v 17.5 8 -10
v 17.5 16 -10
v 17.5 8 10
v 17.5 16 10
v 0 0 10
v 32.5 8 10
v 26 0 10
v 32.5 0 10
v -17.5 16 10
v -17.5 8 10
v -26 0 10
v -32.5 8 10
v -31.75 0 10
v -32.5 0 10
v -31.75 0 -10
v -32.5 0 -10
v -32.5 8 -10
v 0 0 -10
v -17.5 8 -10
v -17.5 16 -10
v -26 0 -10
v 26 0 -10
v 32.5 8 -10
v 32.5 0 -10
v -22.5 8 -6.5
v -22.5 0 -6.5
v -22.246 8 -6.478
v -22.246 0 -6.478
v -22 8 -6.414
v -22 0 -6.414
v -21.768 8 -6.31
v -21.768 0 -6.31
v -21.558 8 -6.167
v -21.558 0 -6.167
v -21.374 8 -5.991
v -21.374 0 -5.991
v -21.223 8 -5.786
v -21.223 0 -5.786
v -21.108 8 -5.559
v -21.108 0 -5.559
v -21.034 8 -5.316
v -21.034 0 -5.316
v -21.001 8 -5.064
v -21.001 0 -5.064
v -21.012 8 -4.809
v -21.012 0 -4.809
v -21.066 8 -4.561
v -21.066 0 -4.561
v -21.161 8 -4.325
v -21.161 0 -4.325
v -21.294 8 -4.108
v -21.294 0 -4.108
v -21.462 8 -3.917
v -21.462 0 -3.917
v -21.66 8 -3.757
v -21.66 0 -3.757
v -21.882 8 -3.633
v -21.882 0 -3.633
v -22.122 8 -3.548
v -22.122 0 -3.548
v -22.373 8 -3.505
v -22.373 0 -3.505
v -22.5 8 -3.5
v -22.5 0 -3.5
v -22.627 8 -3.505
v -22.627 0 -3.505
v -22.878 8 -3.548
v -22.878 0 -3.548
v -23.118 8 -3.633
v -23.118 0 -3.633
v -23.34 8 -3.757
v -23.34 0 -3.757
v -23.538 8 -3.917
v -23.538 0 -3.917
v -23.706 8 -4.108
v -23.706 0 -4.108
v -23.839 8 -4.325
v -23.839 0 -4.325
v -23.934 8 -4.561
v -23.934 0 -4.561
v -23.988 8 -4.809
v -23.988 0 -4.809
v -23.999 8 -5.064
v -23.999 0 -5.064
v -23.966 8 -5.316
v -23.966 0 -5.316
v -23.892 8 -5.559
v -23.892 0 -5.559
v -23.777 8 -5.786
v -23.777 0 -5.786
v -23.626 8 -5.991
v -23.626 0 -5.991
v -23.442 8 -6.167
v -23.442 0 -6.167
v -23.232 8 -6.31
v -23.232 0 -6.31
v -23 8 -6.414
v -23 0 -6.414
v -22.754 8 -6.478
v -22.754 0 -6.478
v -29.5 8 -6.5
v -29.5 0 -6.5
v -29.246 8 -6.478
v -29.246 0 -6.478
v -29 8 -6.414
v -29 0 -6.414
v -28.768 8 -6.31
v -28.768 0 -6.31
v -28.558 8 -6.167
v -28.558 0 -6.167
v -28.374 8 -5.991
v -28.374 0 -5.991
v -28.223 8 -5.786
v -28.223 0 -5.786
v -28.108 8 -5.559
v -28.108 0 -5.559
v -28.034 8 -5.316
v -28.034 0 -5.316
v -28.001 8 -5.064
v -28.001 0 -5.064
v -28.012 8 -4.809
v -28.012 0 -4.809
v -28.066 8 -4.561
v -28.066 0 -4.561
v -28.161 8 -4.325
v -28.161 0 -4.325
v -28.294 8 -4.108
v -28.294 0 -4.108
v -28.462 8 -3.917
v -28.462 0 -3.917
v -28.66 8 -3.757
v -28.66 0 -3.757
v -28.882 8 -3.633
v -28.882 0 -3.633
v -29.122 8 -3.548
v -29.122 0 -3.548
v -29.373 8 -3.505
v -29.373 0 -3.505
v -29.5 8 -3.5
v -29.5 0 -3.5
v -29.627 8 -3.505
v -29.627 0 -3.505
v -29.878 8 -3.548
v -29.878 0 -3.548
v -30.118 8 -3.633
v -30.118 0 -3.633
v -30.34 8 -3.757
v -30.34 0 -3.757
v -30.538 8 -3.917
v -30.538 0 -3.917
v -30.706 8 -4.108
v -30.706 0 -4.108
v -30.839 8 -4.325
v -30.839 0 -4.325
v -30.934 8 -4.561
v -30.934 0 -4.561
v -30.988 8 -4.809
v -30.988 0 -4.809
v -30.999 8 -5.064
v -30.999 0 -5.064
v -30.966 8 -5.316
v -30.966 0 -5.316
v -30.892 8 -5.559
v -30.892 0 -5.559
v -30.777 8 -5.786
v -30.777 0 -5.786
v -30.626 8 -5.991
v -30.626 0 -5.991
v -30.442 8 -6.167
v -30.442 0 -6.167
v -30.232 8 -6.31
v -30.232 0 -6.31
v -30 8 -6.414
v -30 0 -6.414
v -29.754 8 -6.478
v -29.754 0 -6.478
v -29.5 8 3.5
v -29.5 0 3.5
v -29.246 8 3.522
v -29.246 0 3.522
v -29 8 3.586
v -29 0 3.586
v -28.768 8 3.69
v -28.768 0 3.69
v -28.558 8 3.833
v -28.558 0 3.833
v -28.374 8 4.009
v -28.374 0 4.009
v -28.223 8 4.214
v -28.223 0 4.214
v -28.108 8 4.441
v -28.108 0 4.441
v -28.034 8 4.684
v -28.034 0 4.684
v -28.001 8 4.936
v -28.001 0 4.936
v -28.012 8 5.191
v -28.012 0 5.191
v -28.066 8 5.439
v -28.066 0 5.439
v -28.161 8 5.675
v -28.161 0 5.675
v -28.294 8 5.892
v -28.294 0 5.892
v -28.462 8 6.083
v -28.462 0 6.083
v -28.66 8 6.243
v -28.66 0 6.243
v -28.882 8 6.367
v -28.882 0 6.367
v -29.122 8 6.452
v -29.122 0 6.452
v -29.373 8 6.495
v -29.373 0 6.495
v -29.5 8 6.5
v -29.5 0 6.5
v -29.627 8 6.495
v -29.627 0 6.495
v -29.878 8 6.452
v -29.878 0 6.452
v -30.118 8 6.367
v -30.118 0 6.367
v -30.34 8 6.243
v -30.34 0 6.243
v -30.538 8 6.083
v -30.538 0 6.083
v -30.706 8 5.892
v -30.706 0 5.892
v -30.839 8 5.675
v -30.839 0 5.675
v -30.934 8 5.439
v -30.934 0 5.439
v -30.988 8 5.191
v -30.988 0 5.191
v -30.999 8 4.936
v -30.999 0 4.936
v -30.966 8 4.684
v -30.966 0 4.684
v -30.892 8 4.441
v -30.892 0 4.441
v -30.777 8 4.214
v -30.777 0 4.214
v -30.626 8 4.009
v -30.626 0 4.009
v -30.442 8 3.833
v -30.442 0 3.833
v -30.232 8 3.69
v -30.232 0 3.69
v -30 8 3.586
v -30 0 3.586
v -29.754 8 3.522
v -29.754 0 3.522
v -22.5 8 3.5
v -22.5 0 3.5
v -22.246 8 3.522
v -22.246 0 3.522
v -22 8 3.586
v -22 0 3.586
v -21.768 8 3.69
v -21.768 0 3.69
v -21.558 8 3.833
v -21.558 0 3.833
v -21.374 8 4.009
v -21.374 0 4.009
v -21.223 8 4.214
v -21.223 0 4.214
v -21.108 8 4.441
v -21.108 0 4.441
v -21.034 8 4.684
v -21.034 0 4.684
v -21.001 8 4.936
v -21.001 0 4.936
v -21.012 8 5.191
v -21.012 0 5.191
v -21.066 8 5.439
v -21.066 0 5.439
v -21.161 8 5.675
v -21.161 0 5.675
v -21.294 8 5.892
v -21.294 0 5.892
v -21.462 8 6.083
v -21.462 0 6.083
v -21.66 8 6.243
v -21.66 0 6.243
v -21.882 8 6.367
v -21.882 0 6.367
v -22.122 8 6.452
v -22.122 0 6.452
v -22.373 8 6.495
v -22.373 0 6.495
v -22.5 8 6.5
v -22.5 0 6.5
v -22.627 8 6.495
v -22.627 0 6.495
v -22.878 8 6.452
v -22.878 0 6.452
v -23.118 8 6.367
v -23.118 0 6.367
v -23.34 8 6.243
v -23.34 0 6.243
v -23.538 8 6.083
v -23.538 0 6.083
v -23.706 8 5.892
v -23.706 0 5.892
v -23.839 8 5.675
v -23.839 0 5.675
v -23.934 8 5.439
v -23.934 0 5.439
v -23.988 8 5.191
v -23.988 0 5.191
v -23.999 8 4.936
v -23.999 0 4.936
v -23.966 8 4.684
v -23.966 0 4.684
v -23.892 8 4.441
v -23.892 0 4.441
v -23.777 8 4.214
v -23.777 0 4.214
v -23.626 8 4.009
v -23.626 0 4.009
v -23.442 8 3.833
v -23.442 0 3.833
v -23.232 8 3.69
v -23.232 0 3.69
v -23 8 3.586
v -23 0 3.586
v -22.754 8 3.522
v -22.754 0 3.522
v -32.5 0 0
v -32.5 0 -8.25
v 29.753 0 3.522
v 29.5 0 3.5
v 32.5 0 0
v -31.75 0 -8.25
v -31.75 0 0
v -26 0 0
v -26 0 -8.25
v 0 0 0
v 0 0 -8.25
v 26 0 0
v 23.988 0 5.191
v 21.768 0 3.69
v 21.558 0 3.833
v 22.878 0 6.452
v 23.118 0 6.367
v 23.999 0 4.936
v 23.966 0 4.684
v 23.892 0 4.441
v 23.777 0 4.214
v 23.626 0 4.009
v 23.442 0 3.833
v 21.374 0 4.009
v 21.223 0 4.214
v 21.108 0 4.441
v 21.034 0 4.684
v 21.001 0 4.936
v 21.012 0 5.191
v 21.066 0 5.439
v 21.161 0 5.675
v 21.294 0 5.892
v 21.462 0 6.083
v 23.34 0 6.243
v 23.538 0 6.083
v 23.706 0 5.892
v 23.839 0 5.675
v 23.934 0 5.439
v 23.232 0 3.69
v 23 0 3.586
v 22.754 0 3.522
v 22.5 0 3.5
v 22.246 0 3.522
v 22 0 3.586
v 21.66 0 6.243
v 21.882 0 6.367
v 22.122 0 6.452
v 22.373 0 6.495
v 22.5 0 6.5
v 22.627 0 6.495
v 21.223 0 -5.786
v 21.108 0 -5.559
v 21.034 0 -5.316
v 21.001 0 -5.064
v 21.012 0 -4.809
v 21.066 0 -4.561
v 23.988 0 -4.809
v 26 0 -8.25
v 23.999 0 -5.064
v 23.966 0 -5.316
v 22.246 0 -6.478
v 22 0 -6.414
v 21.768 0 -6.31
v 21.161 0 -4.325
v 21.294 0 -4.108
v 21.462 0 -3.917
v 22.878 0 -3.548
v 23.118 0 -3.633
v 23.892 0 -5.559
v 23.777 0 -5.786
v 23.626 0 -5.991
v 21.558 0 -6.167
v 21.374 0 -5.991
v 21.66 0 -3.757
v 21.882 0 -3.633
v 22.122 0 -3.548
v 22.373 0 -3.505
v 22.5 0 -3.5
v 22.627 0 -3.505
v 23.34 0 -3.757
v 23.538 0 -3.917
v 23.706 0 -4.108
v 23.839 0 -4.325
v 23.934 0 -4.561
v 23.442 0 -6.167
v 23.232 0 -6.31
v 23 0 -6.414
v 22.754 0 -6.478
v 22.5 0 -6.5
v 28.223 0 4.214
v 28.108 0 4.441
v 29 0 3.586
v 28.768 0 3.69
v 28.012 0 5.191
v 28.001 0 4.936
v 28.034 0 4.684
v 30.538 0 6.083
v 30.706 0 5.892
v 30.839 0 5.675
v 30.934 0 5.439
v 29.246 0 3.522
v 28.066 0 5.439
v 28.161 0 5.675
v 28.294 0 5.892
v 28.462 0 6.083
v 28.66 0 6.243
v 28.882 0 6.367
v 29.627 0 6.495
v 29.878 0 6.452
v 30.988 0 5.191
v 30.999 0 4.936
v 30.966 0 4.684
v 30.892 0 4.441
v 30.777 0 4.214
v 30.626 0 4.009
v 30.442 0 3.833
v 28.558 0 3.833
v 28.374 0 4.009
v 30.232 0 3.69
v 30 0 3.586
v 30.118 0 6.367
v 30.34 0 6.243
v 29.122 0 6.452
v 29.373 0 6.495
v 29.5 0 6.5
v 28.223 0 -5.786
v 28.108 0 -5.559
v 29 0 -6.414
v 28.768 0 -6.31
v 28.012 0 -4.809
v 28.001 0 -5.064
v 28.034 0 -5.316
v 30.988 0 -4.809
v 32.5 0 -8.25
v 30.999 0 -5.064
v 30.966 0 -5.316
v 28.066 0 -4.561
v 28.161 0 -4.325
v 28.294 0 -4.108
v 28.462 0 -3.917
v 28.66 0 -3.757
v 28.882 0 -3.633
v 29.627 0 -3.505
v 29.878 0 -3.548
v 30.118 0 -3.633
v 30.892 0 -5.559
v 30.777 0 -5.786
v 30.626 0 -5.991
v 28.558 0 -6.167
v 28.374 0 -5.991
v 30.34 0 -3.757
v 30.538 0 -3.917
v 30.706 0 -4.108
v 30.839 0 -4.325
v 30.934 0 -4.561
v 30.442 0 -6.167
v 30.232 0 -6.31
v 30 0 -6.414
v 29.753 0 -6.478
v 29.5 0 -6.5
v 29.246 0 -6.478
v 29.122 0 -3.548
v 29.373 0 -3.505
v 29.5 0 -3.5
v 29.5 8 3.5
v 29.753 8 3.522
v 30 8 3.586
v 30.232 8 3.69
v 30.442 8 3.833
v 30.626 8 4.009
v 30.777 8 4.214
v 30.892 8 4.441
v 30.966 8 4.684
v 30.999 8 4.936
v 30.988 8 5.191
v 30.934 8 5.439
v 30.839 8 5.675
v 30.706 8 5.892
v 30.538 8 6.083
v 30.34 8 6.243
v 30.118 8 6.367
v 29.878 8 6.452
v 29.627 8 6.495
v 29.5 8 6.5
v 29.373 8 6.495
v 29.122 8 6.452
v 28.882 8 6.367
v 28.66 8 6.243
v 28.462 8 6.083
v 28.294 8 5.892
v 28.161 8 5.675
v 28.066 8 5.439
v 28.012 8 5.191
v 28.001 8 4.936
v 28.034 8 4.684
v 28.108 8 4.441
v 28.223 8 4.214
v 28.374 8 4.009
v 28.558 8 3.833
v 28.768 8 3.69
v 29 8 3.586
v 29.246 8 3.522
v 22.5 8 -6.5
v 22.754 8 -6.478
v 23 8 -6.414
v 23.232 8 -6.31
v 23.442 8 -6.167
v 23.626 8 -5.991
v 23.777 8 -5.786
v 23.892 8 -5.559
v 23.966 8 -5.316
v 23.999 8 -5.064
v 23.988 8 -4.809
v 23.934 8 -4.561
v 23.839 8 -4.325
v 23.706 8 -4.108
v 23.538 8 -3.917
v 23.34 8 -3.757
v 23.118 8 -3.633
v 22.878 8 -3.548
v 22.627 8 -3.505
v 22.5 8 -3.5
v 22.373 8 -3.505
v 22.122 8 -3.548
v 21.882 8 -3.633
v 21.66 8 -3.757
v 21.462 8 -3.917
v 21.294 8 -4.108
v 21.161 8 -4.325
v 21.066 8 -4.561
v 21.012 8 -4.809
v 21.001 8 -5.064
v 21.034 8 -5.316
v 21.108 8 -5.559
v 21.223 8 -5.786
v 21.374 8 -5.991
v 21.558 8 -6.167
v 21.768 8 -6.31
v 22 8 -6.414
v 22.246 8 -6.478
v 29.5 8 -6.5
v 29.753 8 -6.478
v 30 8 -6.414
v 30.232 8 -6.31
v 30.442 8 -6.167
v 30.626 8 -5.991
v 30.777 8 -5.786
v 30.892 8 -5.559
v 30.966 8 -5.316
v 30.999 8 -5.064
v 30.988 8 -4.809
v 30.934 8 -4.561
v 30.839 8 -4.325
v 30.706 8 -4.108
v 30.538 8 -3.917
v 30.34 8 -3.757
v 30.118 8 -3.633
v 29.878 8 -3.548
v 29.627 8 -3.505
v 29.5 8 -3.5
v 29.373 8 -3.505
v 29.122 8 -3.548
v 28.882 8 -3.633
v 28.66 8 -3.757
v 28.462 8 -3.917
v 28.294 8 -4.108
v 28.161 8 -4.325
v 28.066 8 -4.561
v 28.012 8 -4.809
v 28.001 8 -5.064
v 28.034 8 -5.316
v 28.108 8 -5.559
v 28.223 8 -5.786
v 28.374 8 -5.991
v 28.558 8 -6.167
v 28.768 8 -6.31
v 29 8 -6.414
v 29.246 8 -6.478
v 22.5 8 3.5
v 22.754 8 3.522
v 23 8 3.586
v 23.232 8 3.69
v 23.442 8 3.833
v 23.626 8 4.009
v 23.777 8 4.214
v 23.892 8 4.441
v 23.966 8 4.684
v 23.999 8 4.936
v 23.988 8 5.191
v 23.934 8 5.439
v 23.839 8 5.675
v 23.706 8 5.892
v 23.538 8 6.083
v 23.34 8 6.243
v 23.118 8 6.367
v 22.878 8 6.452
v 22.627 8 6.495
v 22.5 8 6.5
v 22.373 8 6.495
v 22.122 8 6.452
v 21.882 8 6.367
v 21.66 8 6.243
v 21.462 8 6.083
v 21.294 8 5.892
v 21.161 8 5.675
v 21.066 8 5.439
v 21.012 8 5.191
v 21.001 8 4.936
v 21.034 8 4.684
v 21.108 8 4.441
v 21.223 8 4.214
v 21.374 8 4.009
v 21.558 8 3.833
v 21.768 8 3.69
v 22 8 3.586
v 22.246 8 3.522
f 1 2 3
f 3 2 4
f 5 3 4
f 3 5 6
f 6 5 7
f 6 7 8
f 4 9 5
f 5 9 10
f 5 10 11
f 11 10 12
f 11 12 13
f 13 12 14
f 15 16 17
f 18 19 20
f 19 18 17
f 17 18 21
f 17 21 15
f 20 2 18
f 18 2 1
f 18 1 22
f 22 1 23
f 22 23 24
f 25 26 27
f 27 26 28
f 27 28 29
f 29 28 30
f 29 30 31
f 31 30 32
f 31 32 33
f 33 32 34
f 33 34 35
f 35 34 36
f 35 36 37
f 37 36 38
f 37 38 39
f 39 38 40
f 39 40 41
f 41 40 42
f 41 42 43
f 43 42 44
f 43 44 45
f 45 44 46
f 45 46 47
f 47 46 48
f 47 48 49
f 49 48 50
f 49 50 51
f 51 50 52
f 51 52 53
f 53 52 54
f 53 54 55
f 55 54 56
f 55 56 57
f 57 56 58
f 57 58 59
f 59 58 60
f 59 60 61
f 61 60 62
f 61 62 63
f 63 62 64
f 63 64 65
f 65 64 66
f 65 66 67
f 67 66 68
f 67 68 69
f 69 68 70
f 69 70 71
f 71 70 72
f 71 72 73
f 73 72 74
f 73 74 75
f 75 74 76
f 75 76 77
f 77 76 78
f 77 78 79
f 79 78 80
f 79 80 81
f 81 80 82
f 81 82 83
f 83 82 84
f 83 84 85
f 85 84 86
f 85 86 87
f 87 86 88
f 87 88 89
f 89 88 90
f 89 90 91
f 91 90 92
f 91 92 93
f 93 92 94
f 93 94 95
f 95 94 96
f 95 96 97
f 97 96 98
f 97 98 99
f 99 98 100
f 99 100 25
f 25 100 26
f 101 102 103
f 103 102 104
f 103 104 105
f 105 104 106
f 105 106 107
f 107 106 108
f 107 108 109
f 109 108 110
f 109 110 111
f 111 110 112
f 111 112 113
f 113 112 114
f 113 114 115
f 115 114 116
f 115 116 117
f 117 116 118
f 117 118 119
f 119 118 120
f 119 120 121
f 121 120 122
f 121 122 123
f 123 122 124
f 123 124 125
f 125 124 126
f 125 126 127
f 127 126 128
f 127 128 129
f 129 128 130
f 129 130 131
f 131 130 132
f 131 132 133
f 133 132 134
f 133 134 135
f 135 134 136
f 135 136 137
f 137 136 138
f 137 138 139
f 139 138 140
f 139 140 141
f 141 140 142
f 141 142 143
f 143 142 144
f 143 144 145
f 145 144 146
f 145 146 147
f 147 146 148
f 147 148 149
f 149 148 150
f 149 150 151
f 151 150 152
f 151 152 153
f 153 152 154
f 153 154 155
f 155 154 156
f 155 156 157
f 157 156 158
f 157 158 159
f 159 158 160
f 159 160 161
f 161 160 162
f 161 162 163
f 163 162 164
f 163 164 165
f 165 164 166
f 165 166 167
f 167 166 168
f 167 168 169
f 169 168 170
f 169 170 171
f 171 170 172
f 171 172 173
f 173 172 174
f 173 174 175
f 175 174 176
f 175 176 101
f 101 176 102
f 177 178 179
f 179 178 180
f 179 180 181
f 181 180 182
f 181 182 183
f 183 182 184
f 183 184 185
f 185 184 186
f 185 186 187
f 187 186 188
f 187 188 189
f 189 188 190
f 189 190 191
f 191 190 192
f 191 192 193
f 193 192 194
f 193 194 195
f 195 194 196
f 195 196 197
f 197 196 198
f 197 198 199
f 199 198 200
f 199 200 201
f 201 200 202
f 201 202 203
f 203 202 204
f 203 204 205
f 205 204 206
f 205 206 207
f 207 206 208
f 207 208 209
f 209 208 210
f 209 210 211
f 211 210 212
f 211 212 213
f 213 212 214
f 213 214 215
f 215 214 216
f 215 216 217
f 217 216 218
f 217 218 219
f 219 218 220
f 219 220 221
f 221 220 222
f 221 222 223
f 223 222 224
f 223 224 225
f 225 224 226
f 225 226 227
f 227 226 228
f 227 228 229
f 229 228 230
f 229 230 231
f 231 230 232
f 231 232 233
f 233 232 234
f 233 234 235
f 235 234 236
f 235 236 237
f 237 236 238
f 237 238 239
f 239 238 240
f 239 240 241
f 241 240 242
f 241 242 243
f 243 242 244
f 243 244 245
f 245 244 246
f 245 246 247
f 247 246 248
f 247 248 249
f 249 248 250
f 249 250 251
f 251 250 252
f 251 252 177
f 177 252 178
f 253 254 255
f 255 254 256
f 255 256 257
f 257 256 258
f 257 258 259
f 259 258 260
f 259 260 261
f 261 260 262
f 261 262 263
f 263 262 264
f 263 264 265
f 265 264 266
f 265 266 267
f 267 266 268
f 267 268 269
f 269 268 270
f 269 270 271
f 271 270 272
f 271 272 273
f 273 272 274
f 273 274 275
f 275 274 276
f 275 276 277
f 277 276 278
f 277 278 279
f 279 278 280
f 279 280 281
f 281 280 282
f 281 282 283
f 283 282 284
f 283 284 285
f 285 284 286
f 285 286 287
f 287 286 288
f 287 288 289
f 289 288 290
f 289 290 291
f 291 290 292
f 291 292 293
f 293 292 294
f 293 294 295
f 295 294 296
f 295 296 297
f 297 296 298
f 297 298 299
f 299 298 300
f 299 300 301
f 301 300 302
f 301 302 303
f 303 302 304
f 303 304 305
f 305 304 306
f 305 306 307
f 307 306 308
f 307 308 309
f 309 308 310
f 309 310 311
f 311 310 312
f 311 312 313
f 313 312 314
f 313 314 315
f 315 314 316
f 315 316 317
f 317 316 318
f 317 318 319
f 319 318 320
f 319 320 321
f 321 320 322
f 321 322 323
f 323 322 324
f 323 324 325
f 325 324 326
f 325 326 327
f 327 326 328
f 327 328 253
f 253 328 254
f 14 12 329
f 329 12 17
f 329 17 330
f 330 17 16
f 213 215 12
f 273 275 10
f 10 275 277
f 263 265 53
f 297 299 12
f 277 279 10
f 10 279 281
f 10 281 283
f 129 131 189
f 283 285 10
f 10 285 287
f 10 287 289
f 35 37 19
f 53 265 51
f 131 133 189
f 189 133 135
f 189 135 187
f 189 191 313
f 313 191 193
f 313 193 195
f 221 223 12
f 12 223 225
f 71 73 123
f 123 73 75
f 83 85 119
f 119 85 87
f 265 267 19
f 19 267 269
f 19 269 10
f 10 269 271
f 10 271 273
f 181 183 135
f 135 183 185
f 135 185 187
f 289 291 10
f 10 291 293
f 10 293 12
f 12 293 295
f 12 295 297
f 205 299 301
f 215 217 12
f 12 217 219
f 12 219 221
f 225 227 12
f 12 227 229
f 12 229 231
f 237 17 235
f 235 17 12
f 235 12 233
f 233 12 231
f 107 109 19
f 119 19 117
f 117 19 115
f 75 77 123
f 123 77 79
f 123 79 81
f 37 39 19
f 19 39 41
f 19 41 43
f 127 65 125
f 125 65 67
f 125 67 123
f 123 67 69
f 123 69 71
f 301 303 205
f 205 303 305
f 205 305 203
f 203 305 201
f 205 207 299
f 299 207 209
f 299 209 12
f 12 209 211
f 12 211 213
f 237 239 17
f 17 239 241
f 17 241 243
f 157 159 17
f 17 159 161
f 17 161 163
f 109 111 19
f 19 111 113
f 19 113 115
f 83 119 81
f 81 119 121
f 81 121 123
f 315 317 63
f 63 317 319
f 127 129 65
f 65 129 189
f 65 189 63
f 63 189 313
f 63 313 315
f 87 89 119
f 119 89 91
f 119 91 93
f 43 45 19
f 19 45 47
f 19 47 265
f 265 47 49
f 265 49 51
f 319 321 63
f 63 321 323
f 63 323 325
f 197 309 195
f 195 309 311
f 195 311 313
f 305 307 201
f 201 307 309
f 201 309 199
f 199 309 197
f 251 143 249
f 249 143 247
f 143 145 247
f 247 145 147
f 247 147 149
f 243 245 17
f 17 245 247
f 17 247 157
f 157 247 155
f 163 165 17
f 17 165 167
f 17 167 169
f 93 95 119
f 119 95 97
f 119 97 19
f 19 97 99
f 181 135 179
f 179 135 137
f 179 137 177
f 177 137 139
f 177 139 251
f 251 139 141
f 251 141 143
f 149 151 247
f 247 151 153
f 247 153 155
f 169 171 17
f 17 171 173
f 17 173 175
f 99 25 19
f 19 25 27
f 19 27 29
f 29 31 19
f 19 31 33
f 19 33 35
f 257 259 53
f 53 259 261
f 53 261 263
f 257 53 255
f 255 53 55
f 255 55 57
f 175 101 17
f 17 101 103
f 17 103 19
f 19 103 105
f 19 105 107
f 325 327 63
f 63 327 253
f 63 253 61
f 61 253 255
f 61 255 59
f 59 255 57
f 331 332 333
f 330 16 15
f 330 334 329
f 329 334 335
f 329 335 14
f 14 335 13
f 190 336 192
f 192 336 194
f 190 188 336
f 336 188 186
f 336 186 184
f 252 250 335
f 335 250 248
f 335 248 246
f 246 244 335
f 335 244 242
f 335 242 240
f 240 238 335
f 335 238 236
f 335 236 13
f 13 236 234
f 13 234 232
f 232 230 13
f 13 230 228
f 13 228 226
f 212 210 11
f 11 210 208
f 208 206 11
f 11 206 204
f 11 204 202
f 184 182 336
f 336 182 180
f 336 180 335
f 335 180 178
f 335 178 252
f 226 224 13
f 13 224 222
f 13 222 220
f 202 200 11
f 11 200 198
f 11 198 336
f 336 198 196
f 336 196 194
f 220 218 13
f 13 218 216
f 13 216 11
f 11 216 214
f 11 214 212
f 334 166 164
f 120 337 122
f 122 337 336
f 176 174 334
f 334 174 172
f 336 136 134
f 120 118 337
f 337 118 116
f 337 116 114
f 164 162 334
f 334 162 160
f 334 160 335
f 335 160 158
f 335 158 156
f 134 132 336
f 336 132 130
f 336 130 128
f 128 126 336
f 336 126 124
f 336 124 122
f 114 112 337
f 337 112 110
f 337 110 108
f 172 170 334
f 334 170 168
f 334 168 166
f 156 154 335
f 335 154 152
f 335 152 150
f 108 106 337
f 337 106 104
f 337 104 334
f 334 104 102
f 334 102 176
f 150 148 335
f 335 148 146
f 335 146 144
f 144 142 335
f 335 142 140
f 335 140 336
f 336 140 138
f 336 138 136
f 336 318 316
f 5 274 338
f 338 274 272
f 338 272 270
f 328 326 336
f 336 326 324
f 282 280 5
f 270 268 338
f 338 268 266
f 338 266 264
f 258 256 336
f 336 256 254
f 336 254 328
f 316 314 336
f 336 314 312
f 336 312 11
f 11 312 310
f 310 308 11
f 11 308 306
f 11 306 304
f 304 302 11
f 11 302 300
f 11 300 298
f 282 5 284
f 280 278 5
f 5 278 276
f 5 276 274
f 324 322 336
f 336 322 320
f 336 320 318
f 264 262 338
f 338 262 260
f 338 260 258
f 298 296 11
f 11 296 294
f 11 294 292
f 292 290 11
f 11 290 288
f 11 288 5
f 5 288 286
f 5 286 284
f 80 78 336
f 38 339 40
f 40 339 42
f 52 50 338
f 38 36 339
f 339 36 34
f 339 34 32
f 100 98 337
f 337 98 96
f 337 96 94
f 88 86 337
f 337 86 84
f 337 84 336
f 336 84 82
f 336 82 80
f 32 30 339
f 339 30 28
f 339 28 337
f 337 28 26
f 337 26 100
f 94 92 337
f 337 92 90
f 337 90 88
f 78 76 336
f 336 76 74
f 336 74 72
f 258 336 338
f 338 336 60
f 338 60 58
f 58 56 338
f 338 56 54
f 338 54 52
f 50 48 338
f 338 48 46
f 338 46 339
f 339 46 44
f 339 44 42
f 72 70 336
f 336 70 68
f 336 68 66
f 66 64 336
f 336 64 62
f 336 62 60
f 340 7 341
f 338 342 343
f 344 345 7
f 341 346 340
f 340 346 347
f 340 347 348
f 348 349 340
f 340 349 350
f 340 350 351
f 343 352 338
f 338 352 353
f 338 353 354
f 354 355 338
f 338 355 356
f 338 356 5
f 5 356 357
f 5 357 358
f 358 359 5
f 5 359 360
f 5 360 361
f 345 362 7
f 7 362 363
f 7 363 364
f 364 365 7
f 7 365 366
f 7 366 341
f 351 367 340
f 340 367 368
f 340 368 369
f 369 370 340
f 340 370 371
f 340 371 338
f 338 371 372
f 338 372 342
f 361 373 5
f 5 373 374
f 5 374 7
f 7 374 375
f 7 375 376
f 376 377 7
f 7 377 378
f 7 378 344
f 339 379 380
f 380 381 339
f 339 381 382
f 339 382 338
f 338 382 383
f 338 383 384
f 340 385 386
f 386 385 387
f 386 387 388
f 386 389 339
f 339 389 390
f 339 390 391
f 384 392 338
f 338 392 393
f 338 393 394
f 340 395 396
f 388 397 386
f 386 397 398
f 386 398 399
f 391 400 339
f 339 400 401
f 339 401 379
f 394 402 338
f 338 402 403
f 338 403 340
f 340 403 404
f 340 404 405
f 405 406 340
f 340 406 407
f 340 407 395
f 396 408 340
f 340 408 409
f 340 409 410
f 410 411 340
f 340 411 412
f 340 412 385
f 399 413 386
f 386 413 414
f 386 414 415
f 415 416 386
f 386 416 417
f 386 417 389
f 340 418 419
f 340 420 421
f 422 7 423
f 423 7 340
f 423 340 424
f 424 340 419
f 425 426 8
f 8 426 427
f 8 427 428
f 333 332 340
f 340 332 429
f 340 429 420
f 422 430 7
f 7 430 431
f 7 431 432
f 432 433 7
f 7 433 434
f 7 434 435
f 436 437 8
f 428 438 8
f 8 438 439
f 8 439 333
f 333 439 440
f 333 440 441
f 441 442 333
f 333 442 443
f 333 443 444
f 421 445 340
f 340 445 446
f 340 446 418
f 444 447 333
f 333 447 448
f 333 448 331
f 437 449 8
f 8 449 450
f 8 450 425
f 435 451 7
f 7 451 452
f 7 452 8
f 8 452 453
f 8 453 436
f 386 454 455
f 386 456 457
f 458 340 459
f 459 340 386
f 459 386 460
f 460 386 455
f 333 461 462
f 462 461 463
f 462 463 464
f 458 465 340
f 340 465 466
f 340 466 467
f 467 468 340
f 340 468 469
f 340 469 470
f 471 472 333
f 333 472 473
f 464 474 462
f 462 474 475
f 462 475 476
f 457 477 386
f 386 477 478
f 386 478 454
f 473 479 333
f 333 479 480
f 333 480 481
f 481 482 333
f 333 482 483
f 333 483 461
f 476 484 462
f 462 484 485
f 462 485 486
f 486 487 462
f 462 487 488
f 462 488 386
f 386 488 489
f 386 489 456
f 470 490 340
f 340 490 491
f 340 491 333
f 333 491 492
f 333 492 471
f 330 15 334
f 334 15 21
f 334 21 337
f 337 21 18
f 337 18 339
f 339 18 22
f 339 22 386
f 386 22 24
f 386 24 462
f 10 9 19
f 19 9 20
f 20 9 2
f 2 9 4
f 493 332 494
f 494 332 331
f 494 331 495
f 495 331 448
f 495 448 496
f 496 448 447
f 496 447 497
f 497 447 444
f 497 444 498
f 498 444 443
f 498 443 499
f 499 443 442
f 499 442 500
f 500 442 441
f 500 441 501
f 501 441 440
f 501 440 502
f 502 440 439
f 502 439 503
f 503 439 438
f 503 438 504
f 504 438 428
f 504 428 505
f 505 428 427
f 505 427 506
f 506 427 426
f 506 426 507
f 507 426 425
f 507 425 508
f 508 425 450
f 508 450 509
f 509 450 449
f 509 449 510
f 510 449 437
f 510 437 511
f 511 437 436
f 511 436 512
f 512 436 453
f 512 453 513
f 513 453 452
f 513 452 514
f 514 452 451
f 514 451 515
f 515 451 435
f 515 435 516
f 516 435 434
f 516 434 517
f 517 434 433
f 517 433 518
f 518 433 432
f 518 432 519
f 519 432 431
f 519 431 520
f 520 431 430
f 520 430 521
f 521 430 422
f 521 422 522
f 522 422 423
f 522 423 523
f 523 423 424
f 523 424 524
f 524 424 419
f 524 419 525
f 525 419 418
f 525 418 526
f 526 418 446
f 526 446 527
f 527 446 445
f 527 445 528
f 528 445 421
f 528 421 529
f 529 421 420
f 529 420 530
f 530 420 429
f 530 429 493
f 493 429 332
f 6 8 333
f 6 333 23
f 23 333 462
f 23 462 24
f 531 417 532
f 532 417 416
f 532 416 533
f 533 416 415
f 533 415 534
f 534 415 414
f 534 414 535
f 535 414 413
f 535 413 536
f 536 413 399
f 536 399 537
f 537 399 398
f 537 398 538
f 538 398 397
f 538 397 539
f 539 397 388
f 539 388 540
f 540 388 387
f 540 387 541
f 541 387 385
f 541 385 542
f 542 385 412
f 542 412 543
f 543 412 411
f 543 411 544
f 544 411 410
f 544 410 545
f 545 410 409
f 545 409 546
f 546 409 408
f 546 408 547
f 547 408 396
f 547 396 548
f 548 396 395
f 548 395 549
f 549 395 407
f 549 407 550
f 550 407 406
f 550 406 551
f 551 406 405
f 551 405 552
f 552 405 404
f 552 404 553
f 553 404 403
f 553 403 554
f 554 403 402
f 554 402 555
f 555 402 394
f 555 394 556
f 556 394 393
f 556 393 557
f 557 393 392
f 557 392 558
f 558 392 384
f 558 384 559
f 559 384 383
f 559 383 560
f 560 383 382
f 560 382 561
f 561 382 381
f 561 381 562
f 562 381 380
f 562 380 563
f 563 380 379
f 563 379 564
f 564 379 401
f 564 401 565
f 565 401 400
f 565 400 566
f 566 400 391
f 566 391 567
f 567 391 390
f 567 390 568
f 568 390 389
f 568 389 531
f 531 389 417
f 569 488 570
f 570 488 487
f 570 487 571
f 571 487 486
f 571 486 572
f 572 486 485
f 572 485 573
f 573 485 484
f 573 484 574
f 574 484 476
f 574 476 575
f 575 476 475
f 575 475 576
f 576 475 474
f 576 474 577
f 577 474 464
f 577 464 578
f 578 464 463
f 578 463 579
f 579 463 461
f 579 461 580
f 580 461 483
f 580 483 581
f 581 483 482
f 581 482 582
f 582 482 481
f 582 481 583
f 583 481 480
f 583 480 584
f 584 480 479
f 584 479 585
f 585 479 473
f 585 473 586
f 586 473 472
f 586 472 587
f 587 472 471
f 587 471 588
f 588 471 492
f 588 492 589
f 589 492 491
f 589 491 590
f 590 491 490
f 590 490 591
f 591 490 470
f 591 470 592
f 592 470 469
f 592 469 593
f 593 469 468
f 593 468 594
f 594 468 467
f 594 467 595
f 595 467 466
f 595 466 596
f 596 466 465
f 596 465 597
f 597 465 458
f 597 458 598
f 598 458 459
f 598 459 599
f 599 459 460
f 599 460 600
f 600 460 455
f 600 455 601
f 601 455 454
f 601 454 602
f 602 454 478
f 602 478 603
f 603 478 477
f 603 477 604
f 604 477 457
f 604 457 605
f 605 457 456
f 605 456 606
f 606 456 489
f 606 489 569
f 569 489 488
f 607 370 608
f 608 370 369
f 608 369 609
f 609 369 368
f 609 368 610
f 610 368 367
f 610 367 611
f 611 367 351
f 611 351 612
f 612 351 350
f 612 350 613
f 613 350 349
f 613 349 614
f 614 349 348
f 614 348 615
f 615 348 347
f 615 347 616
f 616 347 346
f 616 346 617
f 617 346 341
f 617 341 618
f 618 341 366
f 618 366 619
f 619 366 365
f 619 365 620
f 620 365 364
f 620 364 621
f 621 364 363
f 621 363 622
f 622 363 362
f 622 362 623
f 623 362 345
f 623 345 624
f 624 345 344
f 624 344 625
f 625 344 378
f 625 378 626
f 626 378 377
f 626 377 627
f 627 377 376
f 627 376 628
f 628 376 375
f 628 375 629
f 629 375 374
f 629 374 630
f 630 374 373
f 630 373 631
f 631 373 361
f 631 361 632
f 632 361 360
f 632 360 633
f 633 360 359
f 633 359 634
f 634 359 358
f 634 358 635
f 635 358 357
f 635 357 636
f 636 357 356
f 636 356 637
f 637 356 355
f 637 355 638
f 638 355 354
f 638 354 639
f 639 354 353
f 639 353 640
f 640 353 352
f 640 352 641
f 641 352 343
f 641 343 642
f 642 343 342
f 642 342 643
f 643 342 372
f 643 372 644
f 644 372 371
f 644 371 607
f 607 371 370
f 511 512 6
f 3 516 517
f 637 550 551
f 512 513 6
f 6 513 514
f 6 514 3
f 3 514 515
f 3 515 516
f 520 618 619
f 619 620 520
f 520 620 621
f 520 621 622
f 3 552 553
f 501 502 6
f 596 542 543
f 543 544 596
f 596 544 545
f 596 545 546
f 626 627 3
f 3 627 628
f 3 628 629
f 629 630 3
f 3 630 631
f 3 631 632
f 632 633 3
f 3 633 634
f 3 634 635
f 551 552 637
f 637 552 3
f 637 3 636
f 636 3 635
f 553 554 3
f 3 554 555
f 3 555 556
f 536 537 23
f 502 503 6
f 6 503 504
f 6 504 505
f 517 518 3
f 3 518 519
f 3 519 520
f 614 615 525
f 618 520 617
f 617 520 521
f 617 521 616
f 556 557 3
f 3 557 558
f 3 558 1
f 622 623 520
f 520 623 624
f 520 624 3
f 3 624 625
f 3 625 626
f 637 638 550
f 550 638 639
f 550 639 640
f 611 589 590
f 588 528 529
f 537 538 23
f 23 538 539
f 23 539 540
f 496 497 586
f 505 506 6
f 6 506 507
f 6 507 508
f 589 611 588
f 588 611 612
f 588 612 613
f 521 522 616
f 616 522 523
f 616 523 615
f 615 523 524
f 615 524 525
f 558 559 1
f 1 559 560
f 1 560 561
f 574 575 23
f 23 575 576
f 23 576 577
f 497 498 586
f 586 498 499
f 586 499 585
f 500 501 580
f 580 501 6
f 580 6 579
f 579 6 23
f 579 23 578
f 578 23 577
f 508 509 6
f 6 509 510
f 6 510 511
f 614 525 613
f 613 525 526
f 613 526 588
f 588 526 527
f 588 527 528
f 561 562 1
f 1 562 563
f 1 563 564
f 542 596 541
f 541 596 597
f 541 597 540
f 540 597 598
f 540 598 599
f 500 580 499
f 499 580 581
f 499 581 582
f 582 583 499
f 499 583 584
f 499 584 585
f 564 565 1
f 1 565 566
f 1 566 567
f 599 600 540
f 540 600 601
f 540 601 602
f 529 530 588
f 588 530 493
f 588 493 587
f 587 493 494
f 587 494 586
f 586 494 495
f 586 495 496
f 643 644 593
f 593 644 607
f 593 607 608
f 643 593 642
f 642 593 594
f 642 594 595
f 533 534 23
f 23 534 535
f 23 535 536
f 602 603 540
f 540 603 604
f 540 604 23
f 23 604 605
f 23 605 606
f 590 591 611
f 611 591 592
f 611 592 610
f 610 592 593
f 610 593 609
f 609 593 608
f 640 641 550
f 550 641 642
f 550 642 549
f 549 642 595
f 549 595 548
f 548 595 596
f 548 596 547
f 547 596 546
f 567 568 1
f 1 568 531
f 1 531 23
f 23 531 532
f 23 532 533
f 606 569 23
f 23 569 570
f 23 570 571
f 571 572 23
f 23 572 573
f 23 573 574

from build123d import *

# Parameters (mm, degrees)
SKETCH1_R             = 1.5
BOSS_EXTRUDE3_DEPTH   = 8
BOSS_EXTRUDE3_2_DEPTH = 8
SKETCH4_W             = 35
SKETCH4_H             = 20
BOSS_EXTRUDE4_DEPTH   = 16


with BuildPart() as part:
    # Sketch1 → Boss-Extrude3 (new body)
    with BuildSketch(Plane(origin=(0, 0, 0), x_dir=(1, 0, 0), z_dir=(0, 1, 0))):
        Polygon((32.5, -10), (32.5, 10), (17.5, 10), (17.5, 5), (17.5, -5), (17.5, -10), align=None)
        with BuildLine():
            ThreePointArc((24, -5), (22.5, -6.5), (21, -5))
            ThreePointArc((21, -5), (22.5, -3.5), (24, -5))
        make_face(mode=Mode.SUBTRACT)
        with Locations((29.5, -5)):
            Circle(SKETCH1_R, mode=Mode.SUBTRACT)
        with BuildLine():
            ThreePointArc((24, 5), (22.5, 3.5), (21, 5))
            ThreePointArc((21, 5), (22.5, 6.5), (24, 5))
        make_face(mode=Mode.SUBTRACT)
        with Locations((29.5, 5)):
            Circle(SKETCH1_R, mode=Mode.SUBTRACT)
    extrude(amount=BOSS_EXTRUDE3_DEPTH)



with BuildPart() as body_2:
    # Sketch1 → Boss-Extrude3 2 (new body)
    with BuildSketch(Plane(origin=(0, 0, 0), x_dir=(1, 0, 0), z_dir=(0, 1, 0))):
        Polygon((-17.5, 5), (-17.5, 10), (-32.5, 10), (-32.5, -10), (-17.5, -10), align=None)
        with BuildLine():
            ThreePointArc((-28, -5), (-30.560660172, -6.060660172), (-29.5, -3.5))
            ThreePointArc((-29.5, -3.5), (-28.439339828, -3.939339828), (-28, -5))
        make_face(mode=Mode.SUBTRACT)
        with Locations((-22.5, -5)):
            Circle(SKETCH1_R, mode=Mode.SUBTRACT)
        with BuildLine():
            ThreePointArc((-29.5, 3.5), (-30.560660172, 6.060660172), (-28, 5))
            ThreePointArc((-28, 5), (-28.439339828, 3.939339828), (-29.5, 3.5))
        make_face(mode=Mode.SUBTRACT)
        with BuildLine():
            ThreePointArc((-24, 5), (-22.5, 6.5), (-21, 5))
            ThreePointArc((-21, 5), (-22.5, 3.5), (-24, 5))
        make_face(mode=Mode.SUBTRACT)
    extrude(amount=BOSS_EXTRUDE3_2_DEPTH)


with BuildPart() as part_1:
    add(part.part)

    add(body_2.part)  # Boss-Extrude4 merges body 2
    # Sketch4 → Boss-Extrude4 (add)
    with BuildSketch(Plane.XZ):
        Rectangle(SKETCH4_W, SKETCH4_H)
    extrude(amount=-BOSS_EXTRUDE4_DEPTH)


solid = part_1.part
